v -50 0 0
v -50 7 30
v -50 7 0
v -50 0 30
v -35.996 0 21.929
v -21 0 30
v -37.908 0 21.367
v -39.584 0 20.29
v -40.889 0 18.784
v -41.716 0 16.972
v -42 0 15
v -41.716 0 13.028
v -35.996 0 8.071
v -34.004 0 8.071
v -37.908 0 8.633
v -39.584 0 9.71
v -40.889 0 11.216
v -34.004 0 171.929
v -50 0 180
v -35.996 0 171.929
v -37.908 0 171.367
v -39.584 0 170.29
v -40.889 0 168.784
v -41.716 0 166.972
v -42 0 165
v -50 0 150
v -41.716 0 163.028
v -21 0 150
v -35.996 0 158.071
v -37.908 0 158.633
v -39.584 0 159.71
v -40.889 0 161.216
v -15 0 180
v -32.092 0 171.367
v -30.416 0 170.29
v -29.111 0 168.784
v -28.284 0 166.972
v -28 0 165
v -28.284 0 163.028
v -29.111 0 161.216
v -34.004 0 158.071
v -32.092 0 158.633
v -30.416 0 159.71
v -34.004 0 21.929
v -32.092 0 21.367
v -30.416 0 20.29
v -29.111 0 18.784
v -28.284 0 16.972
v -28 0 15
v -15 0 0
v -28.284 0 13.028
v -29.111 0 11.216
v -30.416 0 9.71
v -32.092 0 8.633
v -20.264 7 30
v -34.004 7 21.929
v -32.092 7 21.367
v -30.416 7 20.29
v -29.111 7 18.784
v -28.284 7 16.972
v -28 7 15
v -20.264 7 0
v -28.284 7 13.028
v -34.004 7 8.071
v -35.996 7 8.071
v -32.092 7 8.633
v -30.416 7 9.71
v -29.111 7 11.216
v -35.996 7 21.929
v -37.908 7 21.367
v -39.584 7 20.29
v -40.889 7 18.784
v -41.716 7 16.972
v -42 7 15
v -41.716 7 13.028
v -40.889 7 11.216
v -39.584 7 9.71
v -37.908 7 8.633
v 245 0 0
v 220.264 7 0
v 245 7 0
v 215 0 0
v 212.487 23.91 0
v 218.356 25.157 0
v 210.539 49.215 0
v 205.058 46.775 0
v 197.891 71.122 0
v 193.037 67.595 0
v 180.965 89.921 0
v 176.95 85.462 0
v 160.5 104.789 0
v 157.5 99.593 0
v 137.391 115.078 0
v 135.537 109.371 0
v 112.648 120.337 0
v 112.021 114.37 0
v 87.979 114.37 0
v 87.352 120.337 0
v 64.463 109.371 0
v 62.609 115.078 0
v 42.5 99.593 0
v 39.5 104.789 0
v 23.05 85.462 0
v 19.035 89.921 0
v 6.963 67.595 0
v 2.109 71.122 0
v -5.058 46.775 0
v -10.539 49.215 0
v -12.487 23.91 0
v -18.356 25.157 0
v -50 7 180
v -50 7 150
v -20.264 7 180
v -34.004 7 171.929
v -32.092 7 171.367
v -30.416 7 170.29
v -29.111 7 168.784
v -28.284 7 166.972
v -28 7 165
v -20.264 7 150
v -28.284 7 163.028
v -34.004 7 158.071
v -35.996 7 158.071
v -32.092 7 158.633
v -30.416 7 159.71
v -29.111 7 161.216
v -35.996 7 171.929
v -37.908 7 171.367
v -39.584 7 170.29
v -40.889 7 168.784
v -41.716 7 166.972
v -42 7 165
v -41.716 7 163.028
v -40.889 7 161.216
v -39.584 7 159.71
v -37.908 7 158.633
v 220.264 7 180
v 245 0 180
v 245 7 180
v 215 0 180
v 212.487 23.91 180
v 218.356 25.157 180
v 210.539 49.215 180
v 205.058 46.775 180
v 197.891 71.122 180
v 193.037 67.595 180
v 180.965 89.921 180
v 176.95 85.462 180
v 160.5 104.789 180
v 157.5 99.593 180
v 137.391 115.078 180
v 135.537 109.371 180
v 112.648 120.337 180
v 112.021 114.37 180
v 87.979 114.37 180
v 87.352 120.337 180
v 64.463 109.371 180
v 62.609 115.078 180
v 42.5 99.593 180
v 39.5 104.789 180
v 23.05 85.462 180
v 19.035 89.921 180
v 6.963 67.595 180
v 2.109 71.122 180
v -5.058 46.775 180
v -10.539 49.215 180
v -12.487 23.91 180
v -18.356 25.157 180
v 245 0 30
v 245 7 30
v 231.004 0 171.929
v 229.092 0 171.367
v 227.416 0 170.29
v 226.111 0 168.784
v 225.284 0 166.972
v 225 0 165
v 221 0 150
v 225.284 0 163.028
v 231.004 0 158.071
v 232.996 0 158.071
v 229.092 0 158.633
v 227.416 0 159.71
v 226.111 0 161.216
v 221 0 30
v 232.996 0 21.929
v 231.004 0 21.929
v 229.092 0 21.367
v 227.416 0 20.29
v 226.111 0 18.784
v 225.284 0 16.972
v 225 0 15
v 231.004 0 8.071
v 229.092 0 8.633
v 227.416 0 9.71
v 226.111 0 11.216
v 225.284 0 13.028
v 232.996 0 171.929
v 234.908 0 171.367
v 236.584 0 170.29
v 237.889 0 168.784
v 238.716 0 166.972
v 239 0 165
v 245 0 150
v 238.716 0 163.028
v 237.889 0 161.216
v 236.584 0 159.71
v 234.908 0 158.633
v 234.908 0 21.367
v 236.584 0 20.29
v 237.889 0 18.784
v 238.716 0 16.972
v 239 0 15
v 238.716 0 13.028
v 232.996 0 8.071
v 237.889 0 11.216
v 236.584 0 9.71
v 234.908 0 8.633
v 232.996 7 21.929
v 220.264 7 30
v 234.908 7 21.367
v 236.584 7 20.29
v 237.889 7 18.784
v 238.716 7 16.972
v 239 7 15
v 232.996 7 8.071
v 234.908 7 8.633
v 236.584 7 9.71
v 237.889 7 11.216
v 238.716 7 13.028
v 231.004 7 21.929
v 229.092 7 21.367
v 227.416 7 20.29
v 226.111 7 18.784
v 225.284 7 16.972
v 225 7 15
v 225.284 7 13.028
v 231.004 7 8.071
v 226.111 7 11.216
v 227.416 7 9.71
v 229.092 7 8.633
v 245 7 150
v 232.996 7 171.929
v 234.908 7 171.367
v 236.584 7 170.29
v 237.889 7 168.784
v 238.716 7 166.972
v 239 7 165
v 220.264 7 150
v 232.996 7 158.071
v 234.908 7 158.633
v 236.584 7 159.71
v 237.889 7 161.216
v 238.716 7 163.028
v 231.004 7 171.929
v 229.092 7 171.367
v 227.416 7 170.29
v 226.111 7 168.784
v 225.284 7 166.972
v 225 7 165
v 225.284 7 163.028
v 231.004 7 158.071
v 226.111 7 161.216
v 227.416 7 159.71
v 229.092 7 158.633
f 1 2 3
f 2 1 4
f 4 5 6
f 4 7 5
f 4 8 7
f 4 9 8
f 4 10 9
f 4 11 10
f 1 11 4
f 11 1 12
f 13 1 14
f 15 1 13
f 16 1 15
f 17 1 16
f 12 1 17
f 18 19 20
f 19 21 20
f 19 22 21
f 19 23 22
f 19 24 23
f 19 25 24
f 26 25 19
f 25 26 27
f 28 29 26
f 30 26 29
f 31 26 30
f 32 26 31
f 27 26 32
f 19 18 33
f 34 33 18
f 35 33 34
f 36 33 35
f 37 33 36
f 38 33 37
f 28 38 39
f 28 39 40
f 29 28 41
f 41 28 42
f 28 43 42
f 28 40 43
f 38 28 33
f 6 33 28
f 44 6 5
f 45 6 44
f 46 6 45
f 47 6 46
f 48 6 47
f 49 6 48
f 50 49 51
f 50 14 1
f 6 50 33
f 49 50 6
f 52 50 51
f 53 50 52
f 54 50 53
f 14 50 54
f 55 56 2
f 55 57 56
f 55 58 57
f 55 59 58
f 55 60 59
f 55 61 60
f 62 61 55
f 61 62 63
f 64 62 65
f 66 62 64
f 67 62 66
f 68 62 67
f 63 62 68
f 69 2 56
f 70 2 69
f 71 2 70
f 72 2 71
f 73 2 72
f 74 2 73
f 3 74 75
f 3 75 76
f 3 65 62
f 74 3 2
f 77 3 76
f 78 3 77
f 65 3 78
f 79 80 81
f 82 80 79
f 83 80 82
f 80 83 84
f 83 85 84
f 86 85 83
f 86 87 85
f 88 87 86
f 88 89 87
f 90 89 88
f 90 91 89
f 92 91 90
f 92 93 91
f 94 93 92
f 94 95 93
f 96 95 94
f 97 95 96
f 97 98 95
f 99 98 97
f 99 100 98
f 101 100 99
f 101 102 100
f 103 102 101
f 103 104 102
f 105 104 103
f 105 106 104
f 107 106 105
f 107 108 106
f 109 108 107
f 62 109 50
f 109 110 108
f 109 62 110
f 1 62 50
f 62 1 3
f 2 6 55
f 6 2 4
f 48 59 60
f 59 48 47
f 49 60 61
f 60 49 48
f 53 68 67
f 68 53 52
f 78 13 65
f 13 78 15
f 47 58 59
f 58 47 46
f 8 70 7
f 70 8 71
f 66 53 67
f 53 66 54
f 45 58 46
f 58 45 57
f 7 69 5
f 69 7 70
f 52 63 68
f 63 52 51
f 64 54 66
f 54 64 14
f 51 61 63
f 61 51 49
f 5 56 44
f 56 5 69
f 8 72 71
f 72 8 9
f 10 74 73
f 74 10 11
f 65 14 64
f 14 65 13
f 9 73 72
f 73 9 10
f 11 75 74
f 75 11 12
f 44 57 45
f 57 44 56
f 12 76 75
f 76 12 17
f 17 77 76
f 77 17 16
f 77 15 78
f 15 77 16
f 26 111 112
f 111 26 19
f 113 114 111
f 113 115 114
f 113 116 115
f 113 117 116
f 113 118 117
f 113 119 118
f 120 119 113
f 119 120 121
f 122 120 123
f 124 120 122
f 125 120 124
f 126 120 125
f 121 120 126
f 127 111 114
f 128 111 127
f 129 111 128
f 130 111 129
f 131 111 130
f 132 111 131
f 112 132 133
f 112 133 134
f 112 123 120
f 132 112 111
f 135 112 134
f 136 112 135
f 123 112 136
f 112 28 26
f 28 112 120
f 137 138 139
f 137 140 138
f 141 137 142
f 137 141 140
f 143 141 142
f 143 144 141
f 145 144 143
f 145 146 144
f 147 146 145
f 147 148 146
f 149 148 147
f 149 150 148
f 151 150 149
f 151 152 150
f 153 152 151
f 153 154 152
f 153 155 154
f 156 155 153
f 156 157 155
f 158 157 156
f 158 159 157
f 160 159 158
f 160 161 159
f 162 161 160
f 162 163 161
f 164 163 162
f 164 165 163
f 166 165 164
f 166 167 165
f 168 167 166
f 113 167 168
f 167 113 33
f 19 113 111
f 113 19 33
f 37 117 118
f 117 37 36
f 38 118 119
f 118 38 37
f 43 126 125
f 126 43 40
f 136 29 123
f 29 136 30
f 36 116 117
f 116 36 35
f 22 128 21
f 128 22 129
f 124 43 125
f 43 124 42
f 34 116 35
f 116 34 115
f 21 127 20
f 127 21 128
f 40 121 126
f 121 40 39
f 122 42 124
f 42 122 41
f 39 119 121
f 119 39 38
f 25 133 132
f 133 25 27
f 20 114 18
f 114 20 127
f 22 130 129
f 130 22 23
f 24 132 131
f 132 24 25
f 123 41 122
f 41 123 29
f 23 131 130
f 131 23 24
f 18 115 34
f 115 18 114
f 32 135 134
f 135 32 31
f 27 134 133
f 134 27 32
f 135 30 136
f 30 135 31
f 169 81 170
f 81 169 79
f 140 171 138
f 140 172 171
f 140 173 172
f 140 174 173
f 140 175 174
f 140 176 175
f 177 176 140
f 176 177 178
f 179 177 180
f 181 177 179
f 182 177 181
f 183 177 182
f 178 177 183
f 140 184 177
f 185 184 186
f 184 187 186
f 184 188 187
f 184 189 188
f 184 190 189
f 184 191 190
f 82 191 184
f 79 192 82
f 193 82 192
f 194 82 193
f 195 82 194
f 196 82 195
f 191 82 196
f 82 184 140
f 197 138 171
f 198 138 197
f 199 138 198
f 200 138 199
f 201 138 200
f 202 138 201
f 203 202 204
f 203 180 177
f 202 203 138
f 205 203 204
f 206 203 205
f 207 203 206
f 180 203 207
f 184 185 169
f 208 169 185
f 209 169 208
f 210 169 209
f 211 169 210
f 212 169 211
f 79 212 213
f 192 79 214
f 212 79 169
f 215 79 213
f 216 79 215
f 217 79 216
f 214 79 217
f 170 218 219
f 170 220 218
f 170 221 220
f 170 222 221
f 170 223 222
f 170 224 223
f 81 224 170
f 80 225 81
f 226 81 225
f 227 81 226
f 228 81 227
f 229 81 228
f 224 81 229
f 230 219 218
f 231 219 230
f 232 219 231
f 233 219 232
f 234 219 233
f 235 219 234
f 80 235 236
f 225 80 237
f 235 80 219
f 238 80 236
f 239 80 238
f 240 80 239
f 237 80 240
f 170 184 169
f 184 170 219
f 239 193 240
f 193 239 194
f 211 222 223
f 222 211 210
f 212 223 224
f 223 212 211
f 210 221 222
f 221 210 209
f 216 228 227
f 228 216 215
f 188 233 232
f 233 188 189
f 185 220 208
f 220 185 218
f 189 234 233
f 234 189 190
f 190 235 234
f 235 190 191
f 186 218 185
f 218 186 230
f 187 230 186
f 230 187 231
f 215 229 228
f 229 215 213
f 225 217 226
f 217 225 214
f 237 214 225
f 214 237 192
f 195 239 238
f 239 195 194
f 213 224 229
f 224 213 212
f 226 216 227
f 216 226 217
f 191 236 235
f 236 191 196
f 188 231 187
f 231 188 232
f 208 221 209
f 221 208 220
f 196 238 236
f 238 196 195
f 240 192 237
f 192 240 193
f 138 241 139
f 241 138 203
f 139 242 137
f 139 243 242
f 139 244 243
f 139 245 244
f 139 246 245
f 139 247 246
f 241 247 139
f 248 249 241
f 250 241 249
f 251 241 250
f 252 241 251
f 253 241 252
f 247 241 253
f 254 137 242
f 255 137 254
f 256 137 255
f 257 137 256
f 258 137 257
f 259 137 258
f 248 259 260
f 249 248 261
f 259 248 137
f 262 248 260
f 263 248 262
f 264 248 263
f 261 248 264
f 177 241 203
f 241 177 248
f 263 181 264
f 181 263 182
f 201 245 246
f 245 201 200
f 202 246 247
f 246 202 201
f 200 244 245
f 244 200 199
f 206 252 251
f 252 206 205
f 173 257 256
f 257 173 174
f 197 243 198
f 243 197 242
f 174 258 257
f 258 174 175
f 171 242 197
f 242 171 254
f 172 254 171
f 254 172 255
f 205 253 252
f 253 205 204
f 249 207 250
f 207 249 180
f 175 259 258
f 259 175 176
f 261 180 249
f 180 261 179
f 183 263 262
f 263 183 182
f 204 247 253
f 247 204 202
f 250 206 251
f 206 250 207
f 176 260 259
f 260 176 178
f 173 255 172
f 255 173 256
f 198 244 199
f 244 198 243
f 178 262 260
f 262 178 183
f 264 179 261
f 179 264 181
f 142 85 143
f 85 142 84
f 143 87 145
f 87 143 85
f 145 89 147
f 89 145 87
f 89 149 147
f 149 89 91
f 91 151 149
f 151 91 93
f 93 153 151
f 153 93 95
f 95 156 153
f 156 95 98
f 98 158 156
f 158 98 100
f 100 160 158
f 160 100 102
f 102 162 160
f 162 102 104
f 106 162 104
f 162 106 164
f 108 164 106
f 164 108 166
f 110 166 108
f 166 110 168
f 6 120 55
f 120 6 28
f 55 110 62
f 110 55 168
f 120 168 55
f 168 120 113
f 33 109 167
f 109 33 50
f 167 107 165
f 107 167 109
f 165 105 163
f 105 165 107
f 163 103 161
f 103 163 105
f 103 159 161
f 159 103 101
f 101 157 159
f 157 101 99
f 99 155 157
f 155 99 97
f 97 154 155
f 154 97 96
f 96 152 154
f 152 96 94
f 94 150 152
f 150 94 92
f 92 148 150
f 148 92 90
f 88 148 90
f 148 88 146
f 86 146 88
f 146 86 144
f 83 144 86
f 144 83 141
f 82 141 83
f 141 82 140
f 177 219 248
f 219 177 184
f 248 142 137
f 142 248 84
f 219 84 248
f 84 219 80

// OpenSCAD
use <MCAD/2Dshapes.scad>;



translate([100,0]) linear_extrude(180) donutSlice(innerSize=115, outerSize=121, start_angle=0, end_angle=180);
        
difference() 
{
    translate([-50,7])rotate ([90,0]) cube([30,30,7]);
    translate ([-35,15, 15])rotate ([90,0]) cylinder(20, 7,7);
}

difference () 
{
    translate([-50,7,150])rotate ([90,0]) cube([30,30,7]);
    translate ([-35,15, 165])rotate ([90,0]) cylinder(20, 7,7);
}

difference () 
{
    translate([215,7])rotate ([90,0]) cube([30,30,7]);
    translate ([232,15, 15])rotate ([90,0]) cylinder(20, 7,7);
}

difference ()
{
    translate([215,7,150])rotate ([90,0]) cube([30,30,7]);
    translate ([232,15, 165])rotate ([90,0]) cylinder(20, 7,7);
}    

//rounded_square(10, 10);
